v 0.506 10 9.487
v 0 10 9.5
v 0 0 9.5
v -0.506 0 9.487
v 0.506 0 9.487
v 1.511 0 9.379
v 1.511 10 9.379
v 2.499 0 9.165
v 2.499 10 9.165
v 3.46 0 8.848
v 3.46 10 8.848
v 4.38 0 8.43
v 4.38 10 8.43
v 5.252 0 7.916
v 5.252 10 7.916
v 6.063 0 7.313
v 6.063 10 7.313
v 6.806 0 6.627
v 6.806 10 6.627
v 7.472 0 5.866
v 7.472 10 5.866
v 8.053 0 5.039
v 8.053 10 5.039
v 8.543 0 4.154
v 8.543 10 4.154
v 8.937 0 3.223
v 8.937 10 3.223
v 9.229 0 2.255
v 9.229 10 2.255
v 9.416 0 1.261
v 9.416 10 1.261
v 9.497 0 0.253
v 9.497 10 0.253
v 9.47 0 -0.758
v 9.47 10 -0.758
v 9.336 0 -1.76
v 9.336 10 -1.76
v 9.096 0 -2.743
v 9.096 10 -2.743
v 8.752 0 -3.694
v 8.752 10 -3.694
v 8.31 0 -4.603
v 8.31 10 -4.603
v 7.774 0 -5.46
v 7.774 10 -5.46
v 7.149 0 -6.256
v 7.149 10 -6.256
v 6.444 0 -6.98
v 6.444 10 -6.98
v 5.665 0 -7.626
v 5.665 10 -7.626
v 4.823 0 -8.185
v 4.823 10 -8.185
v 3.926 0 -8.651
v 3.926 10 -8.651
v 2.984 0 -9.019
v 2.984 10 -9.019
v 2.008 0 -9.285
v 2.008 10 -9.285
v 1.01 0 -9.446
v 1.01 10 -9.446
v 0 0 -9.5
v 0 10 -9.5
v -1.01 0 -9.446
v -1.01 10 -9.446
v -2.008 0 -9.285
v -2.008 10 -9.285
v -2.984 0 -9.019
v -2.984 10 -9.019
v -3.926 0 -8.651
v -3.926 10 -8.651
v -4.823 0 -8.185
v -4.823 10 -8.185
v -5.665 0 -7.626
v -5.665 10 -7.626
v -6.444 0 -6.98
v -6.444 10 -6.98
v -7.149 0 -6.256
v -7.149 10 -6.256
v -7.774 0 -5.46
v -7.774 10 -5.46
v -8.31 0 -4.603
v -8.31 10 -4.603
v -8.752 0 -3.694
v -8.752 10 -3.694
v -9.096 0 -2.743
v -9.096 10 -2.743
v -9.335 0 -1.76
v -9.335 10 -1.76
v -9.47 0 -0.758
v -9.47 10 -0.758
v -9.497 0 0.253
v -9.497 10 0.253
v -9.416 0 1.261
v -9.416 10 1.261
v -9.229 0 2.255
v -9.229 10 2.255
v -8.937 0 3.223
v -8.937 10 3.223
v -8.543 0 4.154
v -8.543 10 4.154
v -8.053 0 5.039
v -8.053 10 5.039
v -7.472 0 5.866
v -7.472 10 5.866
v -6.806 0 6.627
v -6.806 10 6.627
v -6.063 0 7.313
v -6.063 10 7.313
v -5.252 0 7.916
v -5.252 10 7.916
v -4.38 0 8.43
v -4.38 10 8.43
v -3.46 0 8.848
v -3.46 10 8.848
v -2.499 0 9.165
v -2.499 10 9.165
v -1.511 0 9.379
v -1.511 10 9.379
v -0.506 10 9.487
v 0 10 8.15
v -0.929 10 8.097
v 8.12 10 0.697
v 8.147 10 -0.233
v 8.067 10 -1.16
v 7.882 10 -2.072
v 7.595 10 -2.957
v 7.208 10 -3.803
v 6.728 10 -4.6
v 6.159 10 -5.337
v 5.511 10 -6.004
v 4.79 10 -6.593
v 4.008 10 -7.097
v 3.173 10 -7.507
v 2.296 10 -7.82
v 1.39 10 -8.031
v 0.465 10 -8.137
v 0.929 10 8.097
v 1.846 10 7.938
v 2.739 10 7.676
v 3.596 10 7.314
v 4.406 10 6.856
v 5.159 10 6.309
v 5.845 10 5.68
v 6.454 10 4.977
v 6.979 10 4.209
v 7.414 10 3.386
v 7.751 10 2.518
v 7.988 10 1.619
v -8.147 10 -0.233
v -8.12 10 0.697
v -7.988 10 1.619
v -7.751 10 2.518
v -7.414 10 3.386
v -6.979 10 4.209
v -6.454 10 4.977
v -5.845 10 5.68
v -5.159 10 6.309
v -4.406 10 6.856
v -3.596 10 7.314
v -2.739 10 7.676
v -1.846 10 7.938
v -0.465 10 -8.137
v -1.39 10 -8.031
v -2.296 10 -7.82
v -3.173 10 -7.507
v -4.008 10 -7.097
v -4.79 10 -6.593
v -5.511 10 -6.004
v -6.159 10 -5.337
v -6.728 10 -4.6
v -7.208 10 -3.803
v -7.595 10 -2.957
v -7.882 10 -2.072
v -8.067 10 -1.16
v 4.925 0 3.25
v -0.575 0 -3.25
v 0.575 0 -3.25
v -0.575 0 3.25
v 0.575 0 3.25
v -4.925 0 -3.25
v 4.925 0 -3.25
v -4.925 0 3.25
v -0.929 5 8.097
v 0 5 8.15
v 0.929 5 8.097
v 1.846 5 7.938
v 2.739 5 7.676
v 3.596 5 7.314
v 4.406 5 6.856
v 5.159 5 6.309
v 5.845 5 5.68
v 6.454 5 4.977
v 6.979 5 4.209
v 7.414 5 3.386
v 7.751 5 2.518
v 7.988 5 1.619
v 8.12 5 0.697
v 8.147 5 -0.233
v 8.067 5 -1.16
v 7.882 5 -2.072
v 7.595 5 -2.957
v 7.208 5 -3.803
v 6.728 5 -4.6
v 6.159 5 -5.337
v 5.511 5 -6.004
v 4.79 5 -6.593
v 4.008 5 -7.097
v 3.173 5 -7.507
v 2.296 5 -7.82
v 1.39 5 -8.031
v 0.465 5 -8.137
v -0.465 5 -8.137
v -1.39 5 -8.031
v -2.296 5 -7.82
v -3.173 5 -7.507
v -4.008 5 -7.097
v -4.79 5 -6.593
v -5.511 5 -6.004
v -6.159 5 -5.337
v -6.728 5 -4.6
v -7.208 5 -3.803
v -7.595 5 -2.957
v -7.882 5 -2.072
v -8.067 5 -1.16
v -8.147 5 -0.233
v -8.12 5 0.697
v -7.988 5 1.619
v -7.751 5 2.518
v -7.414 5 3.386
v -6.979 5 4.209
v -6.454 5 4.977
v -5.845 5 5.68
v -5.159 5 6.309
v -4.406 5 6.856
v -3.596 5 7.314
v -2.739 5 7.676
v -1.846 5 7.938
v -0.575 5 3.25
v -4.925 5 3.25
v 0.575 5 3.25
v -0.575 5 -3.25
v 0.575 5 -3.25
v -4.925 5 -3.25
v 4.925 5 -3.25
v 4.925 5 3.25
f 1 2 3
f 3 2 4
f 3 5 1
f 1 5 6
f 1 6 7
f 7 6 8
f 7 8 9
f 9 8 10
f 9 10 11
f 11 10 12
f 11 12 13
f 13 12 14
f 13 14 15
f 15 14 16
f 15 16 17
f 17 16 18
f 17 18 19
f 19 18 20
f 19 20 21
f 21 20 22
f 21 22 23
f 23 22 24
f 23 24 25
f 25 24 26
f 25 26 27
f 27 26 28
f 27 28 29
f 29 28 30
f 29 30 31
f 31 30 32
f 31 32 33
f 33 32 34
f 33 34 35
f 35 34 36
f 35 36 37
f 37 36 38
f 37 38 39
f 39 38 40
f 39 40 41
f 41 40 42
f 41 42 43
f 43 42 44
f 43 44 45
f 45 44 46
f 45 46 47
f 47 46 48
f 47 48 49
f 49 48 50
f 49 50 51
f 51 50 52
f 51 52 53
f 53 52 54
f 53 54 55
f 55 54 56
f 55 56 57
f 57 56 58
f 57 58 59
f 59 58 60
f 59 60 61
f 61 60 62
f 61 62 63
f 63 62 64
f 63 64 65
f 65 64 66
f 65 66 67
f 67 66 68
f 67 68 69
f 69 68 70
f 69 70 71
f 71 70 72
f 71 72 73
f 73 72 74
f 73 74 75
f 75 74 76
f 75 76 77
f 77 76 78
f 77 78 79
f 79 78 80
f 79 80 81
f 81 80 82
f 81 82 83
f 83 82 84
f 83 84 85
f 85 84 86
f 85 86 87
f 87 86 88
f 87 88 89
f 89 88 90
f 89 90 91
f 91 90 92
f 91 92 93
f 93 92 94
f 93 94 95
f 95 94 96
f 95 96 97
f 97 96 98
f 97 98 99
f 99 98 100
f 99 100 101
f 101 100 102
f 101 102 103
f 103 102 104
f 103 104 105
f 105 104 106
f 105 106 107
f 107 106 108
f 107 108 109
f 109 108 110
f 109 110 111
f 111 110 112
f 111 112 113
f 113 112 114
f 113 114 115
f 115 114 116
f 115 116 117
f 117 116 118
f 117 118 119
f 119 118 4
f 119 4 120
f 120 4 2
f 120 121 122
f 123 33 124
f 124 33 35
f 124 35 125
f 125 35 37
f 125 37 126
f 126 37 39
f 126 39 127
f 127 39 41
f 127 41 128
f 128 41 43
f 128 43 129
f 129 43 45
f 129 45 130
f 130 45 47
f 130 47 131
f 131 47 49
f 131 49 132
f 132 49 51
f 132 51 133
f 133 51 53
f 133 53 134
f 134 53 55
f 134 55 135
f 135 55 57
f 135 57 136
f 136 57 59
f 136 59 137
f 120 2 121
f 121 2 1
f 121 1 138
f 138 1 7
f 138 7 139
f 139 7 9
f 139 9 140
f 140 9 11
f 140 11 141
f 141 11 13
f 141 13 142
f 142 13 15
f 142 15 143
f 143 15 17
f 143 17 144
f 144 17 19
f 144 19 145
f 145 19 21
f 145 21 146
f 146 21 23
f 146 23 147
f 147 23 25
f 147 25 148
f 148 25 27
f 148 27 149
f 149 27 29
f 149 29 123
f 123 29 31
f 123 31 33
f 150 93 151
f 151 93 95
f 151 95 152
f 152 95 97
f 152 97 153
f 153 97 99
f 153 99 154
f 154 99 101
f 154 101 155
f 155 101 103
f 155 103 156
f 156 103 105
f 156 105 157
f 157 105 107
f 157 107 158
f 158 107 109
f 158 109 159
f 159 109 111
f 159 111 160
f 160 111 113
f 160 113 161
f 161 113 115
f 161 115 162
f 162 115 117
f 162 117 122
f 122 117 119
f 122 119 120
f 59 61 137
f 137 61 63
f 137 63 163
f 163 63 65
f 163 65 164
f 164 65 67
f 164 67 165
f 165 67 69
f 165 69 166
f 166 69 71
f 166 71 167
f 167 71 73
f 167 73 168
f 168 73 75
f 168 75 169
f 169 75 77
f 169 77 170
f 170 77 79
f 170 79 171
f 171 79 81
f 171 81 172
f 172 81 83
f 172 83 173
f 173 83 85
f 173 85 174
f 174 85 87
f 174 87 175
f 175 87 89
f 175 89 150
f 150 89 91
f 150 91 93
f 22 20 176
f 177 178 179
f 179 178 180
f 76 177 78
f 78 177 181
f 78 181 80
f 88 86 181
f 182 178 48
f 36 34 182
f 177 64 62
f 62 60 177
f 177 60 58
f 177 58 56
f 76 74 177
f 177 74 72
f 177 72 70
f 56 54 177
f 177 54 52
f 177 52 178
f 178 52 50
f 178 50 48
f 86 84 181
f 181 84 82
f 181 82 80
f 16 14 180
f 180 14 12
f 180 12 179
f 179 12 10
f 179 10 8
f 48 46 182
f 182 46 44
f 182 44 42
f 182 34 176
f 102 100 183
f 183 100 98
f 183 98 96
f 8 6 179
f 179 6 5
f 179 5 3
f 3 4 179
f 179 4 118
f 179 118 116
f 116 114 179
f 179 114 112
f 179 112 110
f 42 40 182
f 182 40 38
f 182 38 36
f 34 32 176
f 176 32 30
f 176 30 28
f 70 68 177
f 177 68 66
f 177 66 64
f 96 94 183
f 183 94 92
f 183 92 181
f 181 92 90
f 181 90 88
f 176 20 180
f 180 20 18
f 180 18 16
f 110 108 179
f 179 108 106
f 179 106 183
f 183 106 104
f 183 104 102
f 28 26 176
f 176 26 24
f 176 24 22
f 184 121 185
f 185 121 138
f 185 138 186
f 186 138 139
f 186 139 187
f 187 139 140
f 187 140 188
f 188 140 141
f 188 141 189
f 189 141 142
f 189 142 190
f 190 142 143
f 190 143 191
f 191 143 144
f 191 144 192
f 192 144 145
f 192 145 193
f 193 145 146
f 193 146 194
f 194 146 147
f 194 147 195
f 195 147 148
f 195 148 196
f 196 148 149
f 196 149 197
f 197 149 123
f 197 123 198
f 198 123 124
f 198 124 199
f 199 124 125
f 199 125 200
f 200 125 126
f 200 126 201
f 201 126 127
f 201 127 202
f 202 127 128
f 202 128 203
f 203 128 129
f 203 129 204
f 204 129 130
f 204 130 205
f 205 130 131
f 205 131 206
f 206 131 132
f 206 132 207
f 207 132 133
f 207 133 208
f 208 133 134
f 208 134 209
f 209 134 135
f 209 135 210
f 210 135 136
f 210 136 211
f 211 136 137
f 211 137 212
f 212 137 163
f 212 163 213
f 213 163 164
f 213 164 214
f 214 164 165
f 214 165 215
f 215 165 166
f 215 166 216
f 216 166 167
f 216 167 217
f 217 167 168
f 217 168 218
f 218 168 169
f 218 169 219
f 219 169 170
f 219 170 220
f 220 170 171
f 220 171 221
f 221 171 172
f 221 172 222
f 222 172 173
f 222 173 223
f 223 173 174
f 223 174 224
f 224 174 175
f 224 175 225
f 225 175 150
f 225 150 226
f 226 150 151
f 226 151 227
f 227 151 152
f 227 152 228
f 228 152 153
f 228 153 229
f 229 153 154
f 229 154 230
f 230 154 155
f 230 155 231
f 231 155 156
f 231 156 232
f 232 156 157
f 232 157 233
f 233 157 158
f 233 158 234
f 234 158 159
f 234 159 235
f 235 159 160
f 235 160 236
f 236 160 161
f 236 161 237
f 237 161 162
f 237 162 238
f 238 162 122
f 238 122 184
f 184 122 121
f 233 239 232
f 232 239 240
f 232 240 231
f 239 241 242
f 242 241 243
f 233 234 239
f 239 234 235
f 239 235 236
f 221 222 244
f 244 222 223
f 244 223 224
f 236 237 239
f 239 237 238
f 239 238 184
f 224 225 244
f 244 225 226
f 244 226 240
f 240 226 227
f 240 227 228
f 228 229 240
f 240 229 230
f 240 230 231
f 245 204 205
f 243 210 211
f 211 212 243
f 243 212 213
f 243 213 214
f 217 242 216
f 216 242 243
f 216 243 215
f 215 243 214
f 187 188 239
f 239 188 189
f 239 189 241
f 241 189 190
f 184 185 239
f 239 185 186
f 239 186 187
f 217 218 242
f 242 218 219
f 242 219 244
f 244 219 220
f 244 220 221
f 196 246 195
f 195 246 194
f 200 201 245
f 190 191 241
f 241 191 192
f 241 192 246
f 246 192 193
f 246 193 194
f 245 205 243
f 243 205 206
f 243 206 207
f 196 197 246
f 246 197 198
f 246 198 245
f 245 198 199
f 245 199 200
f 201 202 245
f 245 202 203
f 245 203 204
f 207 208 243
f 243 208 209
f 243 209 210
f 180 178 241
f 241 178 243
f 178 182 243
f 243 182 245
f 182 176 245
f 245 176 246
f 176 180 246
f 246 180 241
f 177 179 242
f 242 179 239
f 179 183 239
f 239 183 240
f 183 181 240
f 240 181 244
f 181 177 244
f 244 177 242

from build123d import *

# Parameters (mm, degrees)
SKETCH2_R           = 9.5
BOSS_EXTRUDE2_DEPTH = 10
SKETCH3_R           = 8.15
CUT_EXTRUDE1_DEPTH  = 5
SKETCH4_W           = 4.35
SKETCH4_H           = 6.5
CUT_EXTRUDE2_DEPTH  = 6


with BuildPart() as part:
    # Sketch2 → Boss-Extrude2 (new body)
    with BuildSketch(Plane(origin=(0, 0, 0), x_dir=(1, 0, 0), z_dir=(0, 1, 0))):
        Circle(SKETCH2_R)
    extrude(amount=BOSS_EXTRUDE2_DEPTH)

    # Sketch3 → Cut-Extrude1 (cut)
    with BuildSketch(Plane(origin=(0, 10, 0), x_dir=(1, 0, 0), z_dir=(0, 1, 0))):
        Circle(SKETCH3_R)
    extrude(amount=-CUT_EXTRUDE1_DEPTH, mode=Mode.SUBTRACT)

    # Sketch4 → Cut-Extrude2 (cut, through all)
    with BuildSketch(Plane(origin=(0, 5, 0), x_dir=(1, 0, 0), z_dir=(0, 1, 0))):
        with Locations((2.75, 0)):
            Rectangle(SKETCH4_W, SKETCH4_H)
        with Locations((-2.75, 0)):
            Rectangle(SKETCH4_W, SKETCH4_H)
    extrude(amount=-CUT_EXTRUDE2_DEPTH, mode=Mode.SUBTRACT)


solid = part.part
